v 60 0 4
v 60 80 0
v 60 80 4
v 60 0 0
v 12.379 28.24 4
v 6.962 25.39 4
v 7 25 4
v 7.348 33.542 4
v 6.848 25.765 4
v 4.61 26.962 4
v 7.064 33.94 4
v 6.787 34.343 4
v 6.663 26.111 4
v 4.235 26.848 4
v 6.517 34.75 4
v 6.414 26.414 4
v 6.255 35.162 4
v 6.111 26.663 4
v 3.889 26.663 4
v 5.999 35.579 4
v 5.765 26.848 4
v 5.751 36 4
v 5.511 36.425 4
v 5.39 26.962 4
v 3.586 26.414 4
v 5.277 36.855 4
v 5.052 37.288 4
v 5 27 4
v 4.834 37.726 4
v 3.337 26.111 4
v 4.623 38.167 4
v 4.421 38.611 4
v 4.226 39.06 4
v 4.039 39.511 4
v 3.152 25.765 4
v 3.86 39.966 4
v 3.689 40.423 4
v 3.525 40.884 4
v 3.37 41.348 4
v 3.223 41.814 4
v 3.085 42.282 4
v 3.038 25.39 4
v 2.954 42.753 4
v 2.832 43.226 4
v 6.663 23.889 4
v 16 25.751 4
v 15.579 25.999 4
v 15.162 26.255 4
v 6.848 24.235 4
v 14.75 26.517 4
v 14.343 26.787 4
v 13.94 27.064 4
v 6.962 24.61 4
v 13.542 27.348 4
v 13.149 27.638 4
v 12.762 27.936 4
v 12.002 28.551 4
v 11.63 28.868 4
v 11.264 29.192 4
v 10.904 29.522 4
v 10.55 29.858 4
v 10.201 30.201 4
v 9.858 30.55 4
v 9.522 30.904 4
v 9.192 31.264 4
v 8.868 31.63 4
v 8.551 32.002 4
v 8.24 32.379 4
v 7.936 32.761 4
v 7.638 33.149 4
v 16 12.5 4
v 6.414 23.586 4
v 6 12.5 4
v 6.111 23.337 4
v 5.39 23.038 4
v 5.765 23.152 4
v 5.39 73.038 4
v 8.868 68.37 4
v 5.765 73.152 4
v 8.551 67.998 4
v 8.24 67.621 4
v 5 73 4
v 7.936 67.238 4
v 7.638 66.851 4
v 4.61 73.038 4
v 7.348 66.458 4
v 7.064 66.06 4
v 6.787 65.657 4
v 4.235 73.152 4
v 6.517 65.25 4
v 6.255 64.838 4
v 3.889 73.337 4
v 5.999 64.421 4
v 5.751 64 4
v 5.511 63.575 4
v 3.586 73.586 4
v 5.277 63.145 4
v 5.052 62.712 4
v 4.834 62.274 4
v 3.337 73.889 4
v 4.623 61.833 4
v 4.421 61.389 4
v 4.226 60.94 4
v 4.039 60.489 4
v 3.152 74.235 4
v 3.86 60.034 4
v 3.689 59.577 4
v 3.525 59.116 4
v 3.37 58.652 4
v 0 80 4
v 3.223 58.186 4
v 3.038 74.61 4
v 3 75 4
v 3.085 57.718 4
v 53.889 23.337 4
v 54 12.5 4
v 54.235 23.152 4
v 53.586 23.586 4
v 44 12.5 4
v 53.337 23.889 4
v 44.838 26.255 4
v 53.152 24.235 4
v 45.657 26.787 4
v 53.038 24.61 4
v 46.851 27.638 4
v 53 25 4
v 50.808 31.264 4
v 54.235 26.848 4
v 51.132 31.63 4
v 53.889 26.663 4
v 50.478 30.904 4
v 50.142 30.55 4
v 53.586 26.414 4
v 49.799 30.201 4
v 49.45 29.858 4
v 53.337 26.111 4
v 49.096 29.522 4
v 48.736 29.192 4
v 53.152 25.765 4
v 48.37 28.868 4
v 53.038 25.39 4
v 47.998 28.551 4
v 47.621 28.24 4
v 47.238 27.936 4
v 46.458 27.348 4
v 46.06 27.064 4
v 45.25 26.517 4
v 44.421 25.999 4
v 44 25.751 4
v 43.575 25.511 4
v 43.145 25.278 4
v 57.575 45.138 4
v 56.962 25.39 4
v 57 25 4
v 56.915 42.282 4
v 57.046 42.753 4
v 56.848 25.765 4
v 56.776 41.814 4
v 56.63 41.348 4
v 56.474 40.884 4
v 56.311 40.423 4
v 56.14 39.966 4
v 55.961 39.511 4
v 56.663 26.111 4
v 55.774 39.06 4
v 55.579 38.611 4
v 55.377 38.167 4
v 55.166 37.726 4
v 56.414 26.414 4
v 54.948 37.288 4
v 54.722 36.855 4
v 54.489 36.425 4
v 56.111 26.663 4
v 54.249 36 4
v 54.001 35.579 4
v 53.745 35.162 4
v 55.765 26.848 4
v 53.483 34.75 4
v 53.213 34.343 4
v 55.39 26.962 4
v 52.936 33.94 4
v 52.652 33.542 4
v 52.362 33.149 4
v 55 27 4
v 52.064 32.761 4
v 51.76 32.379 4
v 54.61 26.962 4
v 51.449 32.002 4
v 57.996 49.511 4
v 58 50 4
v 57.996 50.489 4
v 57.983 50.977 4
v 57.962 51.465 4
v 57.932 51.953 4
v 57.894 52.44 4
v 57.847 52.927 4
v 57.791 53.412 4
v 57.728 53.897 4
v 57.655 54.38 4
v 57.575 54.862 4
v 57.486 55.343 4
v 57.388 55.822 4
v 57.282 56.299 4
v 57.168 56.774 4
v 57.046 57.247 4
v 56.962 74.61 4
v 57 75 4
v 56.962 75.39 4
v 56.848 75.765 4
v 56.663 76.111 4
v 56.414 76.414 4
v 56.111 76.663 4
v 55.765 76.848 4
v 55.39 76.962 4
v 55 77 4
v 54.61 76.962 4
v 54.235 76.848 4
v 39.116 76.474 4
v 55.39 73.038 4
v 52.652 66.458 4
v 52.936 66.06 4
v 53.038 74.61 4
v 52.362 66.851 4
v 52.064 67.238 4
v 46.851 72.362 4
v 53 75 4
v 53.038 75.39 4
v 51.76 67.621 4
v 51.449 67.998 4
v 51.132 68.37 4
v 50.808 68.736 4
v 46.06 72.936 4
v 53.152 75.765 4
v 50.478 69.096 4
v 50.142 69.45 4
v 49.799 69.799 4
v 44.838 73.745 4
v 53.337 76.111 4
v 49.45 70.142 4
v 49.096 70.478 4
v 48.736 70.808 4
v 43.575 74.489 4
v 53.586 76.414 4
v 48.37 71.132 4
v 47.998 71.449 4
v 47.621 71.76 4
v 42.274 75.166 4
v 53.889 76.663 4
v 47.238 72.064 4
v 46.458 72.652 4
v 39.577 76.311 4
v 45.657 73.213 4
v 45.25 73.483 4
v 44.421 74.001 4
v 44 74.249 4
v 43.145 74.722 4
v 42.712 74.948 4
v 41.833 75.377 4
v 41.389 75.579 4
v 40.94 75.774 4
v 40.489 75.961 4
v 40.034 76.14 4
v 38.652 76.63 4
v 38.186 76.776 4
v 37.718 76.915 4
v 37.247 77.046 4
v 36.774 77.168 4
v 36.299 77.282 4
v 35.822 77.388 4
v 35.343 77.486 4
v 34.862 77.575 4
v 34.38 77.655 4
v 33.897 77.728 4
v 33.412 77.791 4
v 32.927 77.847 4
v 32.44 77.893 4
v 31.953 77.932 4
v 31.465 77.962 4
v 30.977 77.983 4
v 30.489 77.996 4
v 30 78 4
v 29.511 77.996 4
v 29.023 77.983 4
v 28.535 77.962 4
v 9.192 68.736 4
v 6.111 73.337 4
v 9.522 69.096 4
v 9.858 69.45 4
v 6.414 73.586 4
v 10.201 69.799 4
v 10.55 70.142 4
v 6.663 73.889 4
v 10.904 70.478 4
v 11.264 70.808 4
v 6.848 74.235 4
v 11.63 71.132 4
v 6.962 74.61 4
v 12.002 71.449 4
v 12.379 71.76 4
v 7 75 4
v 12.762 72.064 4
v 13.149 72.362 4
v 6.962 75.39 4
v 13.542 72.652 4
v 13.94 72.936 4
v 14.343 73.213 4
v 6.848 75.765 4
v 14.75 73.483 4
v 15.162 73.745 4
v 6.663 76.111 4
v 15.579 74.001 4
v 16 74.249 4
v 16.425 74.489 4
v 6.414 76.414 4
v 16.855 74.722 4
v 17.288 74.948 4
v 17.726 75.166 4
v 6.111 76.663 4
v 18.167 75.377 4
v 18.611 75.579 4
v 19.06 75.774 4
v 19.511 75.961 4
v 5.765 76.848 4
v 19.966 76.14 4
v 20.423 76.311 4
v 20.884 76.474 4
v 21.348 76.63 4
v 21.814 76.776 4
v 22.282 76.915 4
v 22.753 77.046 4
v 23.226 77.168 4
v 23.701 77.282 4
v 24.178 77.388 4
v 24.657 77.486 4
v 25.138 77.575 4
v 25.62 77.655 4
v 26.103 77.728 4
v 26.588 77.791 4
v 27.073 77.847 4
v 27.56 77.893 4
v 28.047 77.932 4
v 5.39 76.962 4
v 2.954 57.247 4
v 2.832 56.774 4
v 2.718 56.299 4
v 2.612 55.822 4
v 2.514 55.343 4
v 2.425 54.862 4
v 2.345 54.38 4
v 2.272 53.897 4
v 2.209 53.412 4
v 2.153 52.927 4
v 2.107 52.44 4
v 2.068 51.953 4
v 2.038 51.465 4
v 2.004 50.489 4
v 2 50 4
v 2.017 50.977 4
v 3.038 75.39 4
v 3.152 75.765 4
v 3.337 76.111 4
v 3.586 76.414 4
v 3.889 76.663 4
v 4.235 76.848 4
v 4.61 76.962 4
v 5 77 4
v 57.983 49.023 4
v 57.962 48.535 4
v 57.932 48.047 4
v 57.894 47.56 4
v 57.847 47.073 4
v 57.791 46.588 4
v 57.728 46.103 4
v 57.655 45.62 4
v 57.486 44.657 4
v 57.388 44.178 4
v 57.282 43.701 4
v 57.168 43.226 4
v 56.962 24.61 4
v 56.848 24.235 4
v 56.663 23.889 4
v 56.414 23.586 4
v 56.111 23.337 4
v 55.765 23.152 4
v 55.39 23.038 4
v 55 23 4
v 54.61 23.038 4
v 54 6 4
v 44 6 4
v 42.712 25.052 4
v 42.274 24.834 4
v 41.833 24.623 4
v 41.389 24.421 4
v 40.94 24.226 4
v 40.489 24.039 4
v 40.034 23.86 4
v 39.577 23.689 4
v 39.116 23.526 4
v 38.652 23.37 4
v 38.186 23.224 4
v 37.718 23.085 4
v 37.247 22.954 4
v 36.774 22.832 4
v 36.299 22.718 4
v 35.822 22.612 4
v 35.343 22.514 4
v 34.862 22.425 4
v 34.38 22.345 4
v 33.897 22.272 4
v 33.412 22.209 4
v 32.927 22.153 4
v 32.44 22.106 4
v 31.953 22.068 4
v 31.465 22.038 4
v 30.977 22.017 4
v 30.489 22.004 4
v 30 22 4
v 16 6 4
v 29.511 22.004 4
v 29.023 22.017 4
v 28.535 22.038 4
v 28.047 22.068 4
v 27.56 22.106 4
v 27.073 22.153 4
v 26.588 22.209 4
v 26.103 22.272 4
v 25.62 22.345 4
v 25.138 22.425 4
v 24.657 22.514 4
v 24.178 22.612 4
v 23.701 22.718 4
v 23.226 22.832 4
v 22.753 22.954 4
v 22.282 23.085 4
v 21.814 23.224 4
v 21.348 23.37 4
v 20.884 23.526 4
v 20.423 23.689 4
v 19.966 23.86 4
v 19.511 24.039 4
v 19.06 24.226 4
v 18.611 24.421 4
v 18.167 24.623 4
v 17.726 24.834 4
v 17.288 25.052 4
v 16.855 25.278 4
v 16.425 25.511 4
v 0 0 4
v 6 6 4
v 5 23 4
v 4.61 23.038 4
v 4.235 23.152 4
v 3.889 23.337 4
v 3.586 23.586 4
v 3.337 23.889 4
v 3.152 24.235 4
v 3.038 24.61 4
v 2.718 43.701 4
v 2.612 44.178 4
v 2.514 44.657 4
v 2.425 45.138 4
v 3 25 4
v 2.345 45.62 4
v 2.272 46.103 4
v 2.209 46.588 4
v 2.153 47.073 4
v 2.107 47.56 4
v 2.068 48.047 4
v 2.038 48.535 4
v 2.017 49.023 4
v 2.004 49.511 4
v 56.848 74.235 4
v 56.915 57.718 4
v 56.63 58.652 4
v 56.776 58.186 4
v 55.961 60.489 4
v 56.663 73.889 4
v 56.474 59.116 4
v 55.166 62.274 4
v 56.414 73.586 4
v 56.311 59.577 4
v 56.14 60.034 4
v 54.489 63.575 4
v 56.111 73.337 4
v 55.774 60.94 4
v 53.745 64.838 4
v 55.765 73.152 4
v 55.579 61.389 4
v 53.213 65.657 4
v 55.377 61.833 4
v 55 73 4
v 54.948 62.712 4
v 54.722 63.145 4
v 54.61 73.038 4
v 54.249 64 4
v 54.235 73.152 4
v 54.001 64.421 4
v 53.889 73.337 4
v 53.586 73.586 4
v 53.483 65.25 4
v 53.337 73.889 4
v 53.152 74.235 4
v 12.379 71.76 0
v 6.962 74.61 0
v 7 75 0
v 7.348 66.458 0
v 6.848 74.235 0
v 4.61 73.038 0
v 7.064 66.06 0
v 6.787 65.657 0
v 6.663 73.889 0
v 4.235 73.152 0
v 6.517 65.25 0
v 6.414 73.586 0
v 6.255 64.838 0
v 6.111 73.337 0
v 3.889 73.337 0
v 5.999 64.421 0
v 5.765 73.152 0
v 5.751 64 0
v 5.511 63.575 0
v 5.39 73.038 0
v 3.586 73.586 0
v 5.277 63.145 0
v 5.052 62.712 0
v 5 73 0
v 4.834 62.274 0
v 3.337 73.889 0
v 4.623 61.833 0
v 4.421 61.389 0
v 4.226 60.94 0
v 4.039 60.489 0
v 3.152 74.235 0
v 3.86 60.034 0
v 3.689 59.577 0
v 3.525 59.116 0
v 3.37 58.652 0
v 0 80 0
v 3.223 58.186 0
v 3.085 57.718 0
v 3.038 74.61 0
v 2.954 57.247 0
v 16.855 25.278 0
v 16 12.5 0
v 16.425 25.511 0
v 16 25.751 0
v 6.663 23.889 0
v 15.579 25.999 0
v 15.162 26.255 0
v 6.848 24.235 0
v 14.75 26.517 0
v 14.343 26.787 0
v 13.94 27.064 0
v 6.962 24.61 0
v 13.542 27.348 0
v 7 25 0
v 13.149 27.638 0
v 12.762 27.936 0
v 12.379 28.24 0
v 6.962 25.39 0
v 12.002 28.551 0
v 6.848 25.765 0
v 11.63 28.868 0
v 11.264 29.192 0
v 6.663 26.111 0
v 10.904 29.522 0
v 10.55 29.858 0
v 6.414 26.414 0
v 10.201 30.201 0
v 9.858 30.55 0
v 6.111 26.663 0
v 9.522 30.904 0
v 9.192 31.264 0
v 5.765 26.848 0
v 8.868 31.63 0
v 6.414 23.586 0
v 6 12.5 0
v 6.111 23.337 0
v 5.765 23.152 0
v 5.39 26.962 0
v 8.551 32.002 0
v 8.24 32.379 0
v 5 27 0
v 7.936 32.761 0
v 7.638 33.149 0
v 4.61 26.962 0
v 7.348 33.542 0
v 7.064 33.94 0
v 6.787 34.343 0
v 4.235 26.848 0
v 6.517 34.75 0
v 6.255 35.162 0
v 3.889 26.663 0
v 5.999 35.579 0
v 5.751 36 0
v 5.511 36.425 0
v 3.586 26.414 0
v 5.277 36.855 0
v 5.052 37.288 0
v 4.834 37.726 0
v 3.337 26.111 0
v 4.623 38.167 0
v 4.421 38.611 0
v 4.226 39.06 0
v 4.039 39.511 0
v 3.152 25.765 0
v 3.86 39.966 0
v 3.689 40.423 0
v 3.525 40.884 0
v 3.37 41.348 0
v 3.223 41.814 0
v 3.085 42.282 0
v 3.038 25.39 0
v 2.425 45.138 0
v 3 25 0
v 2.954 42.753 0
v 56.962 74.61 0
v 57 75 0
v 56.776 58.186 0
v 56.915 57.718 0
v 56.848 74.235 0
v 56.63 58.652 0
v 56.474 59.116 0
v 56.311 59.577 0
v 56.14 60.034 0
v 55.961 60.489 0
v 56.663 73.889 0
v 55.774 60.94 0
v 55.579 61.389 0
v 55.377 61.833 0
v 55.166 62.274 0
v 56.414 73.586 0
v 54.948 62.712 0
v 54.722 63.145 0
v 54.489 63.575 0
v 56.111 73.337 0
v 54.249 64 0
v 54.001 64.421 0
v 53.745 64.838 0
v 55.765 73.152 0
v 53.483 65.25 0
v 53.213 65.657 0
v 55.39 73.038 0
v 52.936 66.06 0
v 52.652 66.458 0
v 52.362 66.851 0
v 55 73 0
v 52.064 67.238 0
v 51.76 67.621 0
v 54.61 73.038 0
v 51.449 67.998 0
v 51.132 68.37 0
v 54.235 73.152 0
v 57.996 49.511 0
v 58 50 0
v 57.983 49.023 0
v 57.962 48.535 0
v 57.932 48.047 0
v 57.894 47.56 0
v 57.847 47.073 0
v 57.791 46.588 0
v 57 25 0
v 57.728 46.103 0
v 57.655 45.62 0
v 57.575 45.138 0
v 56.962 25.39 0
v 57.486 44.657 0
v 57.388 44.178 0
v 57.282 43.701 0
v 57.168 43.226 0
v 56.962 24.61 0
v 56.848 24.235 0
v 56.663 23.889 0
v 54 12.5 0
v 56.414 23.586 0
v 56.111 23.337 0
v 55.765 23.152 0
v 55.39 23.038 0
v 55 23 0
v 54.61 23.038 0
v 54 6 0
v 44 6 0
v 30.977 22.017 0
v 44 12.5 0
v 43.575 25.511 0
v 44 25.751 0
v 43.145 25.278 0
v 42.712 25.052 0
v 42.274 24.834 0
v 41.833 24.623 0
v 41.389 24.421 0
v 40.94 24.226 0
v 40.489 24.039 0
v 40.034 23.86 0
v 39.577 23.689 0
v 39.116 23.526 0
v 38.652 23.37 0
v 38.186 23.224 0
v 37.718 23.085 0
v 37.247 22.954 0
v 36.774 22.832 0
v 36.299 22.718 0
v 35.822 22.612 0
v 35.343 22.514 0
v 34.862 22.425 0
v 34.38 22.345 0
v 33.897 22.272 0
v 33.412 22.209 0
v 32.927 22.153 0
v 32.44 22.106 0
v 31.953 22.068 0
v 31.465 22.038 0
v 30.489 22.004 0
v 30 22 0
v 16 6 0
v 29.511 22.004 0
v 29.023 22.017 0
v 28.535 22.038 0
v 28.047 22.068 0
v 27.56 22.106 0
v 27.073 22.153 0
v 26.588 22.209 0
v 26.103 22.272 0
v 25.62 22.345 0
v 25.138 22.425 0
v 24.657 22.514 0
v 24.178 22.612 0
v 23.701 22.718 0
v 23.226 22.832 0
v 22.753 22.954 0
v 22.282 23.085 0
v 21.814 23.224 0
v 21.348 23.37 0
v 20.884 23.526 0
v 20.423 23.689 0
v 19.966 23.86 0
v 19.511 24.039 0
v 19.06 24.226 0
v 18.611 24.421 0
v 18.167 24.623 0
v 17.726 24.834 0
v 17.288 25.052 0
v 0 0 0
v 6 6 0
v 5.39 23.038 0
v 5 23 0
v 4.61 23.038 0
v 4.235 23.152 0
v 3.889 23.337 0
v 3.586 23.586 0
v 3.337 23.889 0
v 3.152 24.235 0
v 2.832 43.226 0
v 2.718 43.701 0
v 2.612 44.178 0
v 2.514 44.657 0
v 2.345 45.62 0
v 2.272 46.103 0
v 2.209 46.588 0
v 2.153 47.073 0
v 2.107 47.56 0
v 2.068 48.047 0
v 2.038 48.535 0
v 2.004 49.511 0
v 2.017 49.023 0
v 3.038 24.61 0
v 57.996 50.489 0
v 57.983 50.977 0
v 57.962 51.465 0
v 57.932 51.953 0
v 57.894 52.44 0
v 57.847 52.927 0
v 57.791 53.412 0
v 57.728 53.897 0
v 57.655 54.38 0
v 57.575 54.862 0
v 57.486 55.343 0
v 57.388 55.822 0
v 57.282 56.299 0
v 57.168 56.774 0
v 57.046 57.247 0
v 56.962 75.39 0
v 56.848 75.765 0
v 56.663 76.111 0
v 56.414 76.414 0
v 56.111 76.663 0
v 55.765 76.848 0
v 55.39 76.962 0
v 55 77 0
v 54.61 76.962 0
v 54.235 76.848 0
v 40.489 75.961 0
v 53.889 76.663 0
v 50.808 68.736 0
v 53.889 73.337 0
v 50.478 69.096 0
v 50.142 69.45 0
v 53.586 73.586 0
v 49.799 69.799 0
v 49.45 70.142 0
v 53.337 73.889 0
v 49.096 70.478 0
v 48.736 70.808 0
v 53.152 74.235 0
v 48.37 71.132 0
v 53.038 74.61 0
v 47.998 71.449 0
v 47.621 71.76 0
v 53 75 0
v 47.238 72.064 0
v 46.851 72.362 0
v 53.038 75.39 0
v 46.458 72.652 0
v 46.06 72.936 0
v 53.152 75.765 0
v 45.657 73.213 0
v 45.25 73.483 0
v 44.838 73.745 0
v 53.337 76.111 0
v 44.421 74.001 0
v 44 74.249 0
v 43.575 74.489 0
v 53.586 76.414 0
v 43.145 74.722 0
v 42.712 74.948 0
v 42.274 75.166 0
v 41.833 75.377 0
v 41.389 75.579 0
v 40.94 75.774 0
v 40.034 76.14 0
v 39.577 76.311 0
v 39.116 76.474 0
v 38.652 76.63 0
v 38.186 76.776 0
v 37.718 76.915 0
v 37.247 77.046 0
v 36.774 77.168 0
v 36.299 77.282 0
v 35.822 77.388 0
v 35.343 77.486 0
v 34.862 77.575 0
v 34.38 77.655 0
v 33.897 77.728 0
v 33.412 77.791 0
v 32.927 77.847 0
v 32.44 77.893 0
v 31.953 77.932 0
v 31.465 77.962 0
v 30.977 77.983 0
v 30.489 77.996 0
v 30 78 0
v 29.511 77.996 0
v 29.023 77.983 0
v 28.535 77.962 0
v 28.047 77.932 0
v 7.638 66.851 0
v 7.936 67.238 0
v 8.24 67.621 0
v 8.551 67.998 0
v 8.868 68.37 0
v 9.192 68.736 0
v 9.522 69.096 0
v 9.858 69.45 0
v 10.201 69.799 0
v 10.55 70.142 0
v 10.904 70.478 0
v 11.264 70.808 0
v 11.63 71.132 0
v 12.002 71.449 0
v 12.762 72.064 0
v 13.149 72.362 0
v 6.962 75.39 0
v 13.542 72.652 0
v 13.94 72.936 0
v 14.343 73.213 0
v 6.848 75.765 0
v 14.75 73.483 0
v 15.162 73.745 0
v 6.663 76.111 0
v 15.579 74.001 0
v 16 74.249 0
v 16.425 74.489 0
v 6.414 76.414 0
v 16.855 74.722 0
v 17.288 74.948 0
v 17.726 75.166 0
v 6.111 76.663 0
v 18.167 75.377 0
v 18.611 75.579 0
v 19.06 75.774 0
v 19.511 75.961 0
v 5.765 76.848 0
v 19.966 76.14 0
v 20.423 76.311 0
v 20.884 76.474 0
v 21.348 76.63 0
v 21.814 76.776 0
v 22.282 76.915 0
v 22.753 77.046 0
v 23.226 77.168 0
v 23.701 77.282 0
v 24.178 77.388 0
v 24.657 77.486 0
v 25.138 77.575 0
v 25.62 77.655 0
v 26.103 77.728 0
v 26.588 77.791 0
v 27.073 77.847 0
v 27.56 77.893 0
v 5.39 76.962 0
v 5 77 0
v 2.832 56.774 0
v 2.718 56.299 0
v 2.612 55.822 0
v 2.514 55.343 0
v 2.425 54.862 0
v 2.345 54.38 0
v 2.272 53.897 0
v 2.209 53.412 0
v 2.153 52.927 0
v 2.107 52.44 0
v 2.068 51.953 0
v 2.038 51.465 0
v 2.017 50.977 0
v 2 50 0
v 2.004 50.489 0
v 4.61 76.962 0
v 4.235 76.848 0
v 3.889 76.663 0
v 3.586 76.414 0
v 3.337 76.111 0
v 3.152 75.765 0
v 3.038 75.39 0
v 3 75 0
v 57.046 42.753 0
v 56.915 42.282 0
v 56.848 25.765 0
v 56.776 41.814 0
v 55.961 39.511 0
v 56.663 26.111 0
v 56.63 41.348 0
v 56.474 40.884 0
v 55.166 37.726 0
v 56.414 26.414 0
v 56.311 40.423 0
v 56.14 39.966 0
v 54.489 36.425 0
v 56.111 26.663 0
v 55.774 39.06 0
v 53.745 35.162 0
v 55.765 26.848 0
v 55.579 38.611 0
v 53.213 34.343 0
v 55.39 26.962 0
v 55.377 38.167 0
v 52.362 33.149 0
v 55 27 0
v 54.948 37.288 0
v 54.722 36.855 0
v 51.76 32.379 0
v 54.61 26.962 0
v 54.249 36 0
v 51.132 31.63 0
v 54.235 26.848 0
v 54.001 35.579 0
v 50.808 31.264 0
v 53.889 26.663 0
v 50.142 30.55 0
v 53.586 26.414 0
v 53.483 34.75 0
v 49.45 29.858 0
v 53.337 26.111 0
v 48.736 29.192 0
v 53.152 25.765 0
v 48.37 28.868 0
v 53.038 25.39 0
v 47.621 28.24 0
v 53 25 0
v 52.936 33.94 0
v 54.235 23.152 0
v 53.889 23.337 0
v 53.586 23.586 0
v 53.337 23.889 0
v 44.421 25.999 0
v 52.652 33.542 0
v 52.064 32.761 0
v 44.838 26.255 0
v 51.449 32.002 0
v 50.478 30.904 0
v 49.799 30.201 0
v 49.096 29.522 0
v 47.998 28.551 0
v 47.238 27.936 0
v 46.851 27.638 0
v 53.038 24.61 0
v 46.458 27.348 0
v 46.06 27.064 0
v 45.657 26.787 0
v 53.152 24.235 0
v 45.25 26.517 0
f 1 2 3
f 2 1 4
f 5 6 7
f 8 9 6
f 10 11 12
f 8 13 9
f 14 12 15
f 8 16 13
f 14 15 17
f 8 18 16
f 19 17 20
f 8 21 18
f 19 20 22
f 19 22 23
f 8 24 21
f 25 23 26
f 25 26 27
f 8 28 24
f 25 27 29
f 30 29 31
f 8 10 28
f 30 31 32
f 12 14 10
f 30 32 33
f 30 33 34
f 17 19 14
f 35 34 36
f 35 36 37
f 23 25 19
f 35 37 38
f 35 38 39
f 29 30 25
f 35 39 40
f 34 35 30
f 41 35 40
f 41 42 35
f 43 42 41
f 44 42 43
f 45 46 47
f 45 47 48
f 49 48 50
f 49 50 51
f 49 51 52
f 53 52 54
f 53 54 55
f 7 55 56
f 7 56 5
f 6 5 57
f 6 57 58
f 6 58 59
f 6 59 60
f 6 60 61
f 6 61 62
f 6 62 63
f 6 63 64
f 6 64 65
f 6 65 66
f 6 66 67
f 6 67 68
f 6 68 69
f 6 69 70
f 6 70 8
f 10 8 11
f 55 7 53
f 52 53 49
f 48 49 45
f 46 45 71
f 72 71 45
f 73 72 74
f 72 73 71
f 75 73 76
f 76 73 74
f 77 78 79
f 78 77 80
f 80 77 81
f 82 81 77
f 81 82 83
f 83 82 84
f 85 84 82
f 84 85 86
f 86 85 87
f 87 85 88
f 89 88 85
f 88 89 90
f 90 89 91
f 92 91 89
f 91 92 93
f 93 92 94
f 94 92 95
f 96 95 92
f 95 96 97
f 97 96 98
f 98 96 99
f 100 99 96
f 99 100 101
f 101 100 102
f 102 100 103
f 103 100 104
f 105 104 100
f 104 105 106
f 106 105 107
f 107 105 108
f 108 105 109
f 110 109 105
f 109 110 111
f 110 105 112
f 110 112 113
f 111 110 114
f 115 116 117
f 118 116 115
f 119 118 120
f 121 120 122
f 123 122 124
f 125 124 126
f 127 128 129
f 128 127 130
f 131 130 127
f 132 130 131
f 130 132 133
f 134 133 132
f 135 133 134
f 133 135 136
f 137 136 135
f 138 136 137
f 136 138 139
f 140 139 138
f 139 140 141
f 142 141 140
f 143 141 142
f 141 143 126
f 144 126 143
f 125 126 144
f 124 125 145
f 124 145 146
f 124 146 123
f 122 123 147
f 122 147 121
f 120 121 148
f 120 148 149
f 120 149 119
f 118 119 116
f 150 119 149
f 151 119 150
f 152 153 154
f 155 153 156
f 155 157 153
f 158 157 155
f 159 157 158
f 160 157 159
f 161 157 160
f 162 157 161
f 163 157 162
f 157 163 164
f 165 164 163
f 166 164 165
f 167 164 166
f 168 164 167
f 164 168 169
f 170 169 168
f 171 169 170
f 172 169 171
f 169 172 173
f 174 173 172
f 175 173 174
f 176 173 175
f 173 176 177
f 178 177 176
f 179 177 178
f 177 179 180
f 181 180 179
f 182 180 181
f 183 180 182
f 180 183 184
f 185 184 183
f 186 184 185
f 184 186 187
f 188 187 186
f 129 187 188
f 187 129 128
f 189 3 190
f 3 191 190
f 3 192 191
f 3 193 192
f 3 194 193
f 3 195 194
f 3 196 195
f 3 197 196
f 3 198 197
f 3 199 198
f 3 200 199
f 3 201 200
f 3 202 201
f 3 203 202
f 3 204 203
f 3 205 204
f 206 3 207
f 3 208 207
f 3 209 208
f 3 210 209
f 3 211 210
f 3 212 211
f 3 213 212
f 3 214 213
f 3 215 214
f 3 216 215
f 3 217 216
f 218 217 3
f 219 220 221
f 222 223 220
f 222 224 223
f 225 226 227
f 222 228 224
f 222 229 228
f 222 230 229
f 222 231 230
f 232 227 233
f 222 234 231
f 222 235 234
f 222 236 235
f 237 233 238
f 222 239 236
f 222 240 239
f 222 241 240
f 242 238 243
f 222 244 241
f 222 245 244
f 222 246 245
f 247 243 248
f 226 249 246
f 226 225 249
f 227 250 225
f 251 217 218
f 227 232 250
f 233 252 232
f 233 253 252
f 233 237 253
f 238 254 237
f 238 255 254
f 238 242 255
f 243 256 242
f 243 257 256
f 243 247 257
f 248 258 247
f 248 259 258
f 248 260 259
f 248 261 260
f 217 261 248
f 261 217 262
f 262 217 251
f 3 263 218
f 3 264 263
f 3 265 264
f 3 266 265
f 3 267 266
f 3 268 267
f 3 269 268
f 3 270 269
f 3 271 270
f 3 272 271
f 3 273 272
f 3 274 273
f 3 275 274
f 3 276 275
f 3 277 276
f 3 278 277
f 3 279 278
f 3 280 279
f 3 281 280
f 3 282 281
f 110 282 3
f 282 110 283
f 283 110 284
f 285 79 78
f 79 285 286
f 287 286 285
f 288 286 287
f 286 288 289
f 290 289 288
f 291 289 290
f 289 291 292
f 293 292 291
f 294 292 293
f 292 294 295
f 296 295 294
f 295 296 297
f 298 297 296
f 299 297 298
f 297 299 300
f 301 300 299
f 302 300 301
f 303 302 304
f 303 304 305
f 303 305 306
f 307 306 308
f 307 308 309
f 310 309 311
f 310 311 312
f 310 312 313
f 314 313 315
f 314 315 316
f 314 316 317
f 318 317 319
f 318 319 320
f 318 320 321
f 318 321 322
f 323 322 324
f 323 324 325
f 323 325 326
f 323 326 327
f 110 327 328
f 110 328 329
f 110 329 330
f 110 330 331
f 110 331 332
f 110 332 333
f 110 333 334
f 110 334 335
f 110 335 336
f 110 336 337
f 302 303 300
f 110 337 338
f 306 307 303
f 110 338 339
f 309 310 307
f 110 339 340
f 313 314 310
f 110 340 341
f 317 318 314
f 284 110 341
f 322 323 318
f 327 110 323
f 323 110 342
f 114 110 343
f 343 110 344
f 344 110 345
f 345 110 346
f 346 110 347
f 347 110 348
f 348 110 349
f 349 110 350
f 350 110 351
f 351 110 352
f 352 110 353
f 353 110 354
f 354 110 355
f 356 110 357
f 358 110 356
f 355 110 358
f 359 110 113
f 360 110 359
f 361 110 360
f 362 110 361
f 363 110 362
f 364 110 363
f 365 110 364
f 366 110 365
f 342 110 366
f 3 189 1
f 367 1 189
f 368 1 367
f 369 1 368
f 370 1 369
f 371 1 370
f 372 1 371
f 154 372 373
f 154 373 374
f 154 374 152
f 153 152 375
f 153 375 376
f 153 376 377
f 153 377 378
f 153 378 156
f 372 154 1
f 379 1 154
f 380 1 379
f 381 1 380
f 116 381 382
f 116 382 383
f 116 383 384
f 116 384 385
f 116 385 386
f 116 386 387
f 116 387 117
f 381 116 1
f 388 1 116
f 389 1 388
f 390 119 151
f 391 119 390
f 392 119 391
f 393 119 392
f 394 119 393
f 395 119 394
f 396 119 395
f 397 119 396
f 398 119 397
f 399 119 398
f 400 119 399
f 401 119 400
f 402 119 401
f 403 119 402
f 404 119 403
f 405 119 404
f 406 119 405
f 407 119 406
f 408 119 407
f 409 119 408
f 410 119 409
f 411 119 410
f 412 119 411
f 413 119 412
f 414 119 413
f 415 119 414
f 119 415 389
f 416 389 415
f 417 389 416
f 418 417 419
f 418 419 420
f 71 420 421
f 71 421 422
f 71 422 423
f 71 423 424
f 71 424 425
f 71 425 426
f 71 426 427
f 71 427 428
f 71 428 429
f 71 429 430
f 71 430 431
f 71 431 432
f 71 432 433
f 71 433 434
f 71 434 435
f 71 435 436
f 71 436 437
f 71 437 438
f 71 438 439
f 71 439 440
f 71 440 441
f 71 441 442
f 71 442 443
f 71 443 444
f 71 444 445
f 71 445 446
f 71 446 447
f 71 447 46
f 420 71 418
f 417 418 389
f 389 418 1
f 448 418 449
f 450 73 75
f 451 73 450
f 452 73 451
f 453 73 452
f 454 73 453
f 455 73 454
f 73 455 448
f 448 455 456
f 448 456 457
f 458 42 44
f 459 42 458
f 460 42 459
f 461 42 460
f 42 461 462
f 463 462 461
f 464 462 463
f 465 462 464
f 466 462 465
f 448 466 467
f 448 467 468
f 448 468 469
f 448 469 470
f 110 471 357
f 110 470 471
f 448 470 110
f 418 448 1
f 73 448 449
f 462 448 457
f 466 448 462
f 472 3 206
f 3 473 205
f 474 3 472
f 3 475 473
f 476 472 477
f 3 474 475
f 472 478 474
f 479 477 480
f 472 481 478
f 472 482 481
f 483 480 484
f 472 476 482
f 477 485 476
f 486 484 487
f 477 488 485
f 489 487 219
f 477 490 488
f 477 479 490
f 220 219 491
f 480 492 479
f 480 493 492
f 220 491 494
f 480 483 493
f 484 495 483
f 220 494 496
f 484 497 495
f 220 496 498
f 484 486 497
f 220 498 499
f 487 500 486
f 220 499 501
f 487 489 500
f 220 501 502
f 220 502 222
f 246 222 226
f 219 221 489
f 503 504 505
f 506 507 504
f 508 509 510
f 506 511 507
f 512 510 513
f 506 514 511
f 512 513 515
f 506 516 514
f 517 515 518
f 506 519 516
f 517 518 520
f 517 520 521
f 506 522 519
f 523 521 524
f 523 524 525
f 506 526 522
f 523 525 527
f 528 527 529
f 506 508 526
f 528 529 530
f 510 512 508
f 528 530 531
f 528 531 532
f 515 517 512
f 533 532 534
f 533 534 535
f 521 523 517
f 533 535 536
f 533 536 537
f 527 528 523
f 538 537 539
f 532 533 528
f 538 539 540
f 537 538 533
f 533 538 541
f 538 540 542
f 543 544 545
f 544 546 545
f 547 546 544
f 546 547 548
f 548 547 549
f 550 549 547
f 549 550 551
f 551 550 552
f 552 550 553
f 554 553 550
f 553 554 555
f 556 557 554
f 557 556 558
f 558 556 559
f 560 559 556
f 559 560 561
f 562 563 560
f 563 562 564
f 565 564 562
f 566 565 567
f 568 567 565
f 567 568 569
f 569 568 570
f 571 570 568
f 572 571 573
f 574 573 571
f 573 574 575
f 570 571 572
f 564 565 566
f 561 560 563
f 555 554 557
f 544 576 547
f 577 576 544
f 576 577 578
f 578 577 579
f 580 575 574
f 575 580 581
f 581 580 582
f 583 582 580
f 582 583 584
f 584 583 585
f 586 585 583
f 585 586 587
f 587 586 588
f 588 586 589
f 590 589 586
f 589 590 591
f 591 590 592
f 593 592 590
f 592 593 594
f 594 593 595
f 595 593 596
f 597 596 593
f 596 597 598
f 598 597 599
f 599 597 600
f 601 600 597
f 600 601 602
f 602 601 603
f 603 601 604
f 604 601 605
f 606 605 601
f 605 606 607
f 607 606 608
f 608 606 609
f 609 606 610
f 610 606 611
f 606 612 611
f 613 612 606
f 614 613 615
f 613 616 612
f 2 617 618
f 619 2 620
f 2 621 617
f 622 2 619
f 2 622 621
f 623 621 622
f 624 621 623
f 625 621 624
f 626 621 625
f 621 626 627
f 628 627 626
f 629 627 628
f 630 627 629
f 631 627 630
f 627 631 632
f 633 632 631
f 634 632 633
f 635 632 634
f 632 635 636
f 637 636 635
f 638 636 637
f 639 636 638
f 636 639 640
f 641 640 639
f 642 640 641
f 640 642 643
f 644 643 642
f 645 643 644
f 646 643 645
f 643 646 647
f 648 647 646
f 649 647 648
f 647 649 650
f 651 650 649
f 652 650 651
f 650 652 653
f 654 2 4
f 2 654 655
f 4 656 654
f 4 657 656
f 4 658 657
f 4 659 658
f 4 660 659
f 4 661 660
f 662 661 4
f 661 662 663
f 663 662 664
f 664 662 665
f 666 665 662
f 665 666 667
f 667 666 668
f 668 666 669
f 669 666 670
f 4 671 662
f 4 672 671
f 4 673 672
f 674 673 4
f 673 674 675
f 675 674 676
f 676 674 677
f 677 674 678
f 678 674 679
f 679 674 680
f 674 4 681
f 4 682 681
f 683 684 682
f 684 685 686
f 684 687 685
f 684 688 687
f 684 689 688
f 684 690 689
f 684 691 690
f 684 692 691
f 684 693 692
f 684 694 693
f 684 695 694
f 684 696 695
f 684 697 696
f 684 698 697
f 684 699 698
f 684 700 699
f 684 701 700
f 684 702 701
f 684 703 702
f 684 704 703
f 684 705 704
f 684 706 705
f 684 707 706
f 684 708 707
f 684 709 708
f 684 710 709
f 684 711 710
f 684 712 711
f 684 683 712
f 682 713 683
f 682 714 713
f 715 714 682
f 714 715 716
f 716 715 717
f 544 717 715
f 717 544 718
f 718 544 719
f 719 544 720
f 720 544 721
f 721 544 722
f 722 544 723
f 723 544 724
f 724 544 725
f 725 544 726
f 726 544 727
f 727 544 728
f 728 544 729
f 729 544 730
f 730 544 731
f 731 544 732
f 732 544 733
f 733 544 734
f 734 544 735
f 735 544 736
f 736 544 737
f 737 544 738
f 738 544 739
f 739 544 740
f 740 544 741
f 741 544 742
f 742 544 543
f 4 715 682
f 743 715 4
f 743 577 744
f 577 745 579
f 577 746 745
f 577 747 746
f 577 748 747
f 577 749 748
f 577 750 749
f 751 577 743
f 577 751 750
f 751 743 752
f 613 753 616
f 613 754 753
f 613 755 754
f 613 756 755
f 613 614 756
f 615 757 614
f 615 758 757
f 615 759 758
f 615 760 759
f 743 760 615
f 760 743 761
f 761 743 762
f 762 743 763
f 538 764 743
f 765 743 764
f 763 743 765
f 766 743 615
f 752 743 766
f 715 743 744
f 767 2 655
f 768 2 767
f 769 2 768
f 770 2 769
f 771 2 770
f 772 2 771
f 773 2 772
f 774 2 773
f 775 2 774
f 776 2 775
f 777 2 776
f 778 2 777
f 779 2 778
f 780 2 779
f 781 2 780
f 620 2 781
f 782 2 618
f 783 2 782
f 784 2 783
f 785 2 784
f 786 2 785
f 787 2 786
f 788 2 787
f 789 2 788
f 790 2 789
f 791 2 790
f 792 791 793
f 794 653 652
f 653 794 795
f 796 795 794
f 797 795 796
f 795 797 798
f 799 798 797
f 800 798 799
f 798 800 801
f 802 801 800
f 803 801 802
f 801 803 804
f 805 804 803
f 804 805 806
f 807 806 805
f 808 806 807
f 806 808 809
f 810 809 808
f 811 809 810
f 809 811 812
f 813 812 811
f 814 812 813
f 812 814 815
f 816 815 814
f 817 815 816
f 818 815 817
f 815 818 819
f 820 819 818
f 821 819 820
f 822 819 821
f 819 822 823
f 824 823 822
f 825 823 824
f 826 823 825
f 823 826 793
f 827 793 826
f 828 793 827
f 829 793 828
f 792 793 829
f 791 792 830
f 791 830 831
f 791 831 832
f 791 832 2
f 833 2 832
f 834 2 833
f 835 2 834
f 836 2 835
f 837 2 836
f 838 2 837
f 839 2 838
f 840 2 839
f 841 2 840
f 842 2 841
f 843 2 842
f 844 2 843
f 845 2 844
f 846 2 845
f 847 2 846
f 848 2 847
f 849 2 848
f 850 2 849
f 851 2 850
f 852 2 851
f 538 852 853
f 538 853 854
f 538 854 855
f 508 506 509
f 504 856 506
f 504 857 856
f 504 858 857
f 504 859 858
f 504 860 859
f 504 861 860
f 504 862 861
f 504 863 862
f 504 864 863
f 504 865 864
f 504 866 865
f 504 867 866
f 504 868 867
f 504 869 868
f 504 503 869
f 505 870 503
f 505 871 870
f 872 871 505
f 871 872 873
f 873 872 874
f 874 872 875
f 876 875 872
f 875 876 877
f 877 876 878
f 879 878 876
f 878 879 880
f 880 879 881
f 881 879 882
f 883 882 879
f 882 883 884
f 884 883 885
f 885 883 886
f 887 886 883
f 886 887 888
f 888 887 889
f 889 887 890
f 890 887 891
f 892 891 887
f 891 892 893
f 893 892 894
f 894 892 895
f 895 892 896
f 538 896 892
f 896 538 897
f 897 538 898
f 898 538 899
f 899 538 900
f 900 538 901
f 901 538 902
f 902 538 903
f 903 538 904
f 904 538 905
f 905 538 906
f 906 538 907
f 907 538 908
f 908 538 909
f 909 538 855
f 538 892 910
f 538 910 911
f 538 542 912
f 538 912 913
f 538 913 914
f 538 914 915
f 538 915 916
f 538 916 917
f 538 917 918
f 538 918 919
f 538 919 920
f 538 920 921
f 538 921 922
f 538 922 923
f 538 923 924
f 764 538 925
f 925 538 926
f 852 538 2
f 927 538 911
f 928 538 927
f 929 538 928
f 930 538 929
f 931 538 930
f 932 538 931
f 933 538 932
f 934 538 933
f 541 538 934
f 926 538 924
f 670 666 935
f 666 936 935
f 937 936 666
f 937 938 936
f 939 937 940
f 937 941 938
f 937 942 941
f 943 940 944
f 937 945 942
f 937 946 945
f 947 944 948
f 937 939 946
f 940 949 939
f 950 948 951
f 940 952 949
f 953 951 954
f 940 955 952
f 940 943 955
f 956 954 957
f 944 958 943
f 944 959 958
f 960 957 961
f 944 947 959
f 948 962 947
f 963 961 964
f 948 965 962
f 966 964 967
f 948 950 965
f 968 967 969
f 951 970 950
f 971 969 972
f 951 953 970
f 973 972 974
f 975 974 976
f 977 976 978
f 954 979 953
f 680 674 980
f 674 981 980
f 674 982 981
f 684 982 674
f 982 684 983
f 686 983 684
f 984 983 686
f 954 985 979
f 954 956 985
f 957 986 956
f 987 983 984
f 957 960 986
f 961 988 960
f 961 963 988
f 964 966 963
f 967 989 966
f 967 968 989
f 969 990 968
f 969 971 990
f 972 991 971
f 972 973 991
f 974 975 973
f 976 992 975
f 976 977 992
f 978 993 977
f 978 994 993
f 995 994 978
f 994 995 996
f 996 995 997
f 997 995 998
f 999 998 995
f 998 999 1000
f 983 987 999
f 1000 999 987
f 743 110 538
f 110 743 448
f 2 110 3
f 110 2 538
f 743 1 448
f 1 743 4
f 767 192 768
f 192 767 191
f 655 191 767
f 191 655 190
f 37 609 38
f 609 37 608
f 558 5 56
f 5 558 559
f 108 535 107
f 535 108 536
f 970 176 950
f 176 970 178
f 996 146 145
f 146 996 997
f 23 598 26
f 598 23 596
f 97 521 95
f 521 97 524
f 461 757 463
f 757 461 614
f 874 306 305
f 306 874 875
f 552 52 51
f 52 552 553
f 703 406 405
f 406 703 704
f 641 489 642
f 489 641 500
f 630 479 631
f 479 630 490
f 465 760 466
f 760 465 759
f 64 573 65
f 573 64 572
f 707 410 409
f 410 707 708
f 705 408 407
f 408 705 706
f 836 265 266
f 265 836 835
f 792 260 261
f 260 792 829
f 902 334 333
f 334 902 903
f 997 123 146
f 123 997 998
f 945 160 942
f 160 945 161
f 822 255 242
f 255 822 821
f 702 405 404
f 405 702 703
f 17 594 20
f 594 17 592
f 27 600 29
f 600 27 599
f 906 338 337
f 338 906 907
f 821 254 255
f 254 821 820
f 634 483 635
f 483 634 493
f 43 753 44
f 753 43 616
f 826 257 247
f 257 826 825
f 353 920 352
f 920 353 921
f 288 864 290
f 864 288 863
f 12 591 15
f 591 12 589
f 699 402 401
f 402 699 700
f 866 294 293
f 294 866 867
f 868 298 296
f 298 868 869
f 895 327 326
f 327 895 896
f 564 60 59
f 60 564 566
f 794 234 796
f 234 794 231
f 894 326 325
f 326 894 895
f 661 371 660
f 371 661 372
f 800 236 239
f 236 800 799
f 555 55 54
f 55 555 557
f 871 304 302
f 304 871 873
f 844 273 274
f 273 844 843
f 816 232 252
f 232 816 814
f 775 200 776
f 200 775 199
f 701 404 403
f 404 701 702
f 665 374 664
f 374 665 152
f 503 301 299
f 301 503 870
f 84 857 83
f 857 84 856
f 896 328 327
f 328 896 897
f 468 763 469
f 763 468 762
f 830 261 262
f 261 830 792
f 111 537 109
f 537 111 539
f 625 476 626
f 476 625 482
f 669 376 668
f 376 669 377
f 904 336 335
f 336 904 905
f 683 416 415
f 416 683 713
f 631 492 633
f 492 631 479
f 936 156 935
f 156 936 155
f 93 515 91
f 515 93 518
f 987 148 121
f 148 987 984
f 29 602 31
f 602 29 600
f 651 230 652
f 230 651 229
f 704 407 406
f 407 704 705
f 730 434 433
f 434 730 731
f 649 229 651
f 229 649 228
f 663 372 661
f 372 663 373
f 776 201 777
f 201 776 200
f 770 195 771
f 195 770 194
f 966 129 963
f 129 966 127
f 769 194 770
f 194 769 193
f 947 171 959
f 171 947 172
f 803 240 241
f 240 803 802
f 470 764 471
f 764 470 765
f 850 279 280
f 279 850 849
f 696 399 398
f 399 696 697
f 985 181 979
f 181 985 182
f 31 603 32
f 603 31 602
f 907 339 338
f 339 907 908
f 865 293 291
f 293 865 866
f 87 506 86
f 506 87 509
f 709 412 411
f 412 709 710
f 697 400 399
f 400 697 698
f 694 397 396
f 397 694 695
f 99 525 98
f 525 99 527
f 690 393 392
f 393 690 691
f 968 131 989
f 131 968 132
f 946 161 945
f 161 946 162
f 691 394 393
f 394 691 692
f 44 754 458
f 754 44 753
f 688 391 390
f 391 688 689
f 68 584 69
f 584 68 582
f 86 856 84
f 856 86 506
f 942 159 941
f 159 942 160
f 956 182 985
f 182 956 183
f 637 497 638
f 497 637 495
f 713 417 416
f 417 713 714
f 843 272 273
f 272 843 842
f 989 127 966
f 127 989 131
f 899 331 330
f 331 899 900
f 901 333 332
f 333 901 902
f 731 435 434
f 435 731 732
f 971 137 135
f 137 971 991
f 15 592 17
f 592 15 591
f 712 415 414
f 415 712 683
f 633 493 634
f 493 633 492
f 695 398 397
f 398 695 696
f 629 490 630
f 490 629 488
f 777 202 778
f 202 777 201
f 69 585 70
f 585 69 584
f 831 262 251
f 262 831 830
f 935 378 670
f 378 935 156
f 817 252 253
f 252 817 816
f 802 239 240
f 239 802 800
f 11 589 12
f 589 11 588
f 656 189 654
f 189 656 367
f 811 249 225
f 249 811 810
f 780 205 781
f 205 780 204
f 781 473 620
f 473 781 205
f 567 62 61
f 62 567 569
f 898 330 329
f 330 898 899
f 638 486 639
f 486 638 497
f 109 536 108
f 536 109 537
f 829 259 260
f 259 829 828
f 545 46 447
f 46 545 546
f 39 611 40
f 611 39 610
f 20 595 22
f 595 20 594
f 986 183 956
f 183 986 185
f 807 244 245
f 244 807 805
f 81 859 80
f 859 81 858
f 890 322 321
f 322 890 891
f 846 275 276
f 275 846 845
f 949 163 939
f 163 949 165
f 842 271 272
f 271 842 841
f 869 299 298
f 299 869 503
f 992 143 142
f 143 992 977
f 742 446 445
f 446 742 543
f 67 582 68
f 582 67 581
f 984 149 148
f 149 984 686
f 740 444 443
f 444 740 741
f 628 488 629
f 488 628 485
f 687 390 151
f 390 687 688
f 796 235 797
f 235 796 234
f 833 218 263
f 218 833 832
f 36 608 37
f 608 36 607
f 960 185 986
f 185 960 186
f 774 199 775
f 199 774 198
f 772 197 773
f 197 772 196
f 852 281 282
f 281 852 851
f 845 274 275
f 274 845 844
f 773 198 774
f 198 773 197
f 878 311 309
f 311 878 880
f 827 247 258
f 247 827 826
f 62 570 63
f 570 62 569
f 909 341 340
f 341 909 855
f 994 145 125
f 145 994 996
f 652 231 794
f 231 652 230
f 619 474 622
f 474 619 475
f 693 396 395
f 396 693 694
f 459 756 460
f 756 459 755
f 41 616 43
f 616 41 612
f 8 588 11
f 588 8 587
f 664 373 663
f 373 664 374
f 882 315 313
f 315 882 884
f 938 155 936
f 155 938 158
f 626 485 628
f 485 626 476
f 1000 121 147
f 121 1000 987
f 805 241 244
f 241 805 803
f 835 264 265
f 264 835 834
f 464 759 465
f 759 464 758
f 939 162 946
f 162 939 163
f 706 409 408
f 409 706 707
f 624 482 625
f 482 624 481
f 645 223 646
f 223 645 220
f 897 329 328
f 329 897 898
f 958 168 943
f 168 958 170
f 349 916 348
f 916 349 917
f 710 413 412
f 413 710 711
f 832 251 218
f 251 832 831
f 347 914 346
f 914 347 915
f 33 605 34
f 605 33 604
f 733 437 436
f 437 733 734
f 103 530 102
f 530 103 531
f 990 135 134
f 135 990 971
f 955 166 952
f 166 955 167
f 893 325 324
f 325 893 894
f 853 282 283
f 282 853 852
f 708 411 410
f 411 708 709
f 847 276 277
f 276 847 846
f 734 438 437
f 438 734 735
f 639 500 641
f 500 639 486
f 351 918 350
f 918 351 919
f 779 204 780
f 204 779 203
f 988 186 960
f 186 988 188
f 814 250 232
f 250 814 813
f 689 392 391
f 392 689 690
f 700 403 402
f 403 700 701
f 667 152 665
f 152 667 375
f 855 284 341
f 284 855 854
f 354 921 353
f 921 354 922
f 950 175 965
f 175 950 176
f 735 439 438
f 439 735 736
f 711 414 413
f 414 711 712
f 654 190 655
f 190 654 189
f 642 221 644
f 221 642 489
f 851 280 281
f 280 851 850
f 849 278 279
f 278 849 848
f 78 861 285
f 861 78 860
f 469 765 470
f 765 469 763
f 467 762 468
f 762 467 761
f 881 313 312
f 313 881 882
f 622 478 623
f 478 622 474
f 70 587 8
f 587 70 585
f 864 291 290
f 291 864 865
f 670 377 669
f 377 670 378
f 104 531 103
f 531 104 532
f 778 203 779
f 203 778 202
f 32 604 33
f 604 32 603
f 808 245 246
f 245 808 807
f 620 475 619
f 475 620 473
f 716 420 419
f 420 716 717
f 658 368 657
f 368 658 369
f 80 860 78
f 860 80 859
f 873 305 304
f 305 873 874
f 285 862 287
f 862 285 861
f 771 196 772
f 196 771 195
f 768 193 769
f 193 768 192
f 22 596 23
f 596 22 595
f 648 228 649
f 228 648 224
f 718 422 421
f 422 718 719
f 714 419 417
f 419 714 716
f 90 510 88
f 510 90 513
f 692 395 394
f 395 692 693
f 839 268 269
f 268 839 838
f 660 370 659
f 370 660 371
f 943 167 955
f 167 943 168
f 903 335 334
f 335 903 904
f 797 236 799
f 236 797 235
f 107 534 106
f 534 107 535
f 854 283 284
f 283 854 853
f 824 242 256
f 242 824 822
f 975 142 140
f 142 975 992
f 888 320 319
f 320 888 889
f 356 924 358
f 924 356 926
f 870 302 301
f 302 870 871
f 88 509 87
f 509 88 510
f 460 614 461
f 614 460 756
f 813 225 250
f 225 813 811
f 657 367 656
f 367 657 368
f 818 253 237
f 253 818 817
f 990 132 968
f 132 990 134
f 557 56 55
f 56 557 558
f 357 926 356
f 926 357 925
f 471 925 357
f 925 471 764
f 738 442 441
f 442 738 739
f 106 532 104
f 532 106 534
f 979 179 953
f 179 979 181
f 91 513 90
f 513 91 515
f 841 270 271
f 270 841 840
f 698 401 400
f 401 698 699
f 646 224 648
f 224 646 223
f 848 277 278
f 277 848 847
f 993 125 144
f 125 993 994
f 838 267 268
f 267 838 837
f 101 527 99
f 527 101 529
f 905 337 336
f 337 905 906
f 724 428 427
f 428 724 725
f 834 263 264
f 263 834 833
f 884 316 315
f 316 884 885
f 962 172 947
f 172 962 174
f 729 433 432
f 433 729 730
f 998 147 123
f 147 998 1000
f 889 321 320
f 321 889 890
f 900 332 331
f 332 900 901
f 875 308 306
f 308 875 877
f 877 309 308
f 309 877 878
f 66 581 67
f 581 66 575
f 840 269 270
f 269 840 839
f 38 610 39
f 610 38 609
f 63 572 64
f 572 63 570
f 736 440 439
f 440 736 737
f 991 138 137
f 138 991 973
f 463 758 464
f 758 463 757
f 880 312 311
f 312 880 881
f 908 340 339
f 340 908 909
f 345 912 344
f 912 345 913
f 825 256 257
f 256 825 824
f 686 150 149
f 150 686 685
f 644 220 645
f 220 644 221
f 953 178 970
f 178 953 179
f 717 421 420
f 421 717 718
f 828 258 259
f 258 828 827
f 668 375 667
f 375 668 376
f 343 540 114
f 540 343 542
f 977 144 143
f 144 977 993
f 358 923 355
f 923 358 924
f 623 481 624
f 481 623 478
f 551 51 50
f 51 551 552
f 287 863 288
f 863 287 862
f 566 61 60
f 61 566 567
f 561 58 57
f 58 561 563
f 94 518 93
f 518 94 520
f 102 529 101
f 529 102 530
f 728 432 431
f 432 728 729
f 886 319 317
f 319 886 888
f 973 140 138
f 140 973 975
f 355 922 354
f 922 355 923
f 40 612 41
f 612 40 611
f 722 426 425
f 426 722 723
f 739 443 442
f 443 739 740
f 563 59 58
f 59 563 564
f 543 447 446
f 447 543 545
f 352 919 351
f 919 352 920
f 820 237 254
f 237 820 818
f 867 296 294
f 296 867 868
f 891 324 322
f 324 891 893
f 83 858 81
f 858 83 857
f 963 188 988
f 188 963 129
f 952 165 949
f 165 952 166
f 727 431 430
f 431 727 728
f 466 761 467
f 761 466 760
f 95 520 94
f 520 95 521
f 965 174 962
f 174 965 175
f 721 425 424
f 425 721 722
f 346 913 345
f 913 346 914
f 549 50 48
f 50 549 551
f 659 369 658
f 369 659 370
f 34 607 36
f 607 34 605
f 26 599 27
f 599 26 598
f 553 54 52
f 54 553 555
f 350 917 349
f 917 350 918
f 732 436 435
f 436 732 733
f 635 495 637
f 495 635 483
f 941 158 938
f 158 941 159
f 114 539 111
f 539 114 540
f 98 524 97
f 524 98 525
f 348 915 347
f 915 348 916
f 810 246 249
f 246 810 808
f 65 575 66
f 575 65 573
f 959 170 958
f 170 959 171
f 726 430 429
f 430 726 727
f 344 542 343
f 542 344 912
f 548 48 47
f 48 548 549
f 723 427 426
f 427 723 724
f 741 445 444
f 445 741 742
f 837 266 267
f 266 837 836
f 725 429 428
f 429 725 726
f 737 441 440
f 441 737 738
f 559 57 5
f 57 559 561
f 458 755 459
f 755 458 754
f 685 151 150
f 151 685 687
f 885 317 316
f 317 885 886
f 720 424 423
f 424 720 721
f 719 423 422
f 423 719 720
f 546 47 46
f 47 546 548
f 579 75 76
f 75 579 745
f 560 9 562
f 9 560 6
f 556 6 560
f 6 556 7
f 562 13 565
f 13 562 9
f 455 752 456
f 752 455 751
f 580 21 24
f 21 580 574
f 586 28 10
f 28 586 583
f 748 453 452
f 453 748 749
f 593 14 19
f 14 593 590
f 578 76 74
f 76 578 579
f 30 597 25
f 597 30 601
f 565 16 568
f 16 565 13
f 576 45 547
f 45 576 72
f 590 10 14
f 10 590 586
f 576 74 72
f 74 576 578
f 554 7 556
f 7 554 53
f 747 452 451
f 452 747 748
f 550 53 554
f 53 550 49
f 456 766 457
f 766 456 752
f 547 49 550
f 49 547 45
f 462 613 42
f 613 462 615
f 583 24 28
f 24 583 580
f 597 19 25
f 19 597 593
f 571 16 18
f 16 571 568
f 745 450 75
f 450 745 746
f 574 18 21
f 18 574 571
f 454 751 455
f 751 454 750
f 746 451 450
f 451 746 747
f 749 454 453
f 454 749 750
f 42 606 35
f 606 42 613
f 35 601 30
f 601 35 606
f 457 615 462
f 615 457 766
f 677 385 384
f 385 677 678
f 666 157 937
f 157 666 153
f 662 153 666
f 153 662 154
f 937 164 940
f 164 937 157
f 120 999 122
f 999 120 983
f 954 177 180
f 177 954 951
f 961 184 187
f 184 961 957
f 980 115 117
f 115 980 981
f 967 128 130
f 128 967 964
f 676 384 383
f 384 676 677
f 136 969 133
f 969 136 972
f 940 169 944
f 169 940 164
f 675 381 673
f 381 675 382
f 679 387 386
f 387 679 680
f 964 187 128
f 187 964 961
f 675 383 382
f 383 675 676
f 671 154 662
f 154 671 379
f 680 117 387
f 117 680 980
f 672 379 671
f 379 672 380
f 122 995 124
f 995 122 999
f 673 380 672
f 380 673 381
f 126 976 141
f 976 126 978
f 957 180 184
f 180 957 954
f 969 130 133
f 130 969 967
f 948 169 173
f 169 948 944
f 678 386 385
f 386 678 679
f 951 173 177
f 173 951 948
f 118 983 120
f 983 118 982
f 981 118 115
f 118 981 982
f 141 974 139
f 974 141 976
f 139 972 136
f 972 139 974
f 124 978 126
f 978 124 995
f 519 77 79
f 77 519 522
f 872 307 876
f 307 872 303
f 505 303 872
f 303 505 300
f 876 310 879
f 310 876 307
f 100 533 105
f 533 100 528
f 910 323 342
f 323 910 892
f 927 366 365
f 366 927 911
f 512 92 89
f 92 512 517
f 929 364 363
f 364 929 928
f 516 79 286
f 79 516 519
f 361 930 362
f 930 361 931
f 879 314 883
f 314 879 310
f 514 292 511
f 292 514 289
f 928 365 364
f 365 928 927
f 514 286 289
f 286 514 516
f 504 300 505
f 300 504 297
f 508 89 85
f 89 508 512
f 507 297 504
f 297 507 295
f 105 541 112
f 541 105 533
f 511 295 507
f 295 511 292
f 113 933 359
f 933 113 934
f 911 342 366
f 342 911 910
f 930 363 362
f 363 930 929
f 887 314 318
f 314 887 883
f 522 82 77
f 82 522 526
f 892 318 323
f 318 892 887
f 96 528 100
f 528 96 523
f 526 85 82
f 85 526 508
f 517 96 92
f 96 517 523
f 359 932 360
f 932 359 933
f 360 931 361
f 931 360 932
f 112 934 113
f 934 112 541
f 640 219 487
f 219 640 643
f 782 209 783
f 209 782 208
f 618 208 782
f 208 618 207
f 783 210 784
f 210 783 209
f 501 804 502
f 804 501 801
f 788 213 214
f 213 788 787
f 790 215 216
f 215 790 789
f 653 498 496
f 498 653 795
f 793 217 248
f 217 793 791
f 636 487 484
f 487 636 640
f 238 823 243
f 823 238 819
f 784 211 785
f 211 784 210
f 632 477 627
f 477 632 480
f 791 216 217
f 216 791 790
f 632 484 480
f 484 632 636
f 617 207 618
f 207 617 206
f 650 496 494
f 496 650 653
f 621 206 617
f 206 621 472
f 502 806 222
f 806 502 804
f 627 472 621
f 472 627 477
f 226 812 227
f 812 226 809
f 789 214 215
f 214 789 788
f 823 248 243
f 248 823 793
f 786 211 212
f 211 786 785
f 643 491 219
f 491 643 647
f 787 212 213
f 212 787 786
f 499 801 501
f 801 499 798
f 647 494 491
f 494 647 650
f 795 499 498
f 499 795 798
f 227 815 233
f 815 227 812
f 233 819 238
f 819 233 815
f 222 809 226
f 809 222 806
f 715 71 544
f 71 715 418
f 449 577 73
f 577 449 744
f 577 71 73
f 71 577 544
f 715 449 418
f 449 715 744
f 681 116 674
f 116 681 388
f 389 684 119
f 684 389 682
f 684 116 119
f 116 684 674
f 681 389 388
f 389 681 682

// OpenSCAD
$fa = 1;
$fs = 0.4;

difference() {
    cube([60, 80, 4]);
    
    translate([30, 50, -0.5])
        cylinder(r=28, h=6);
    
    translate([5, 25, -0.5])
        cylinder(r=2, h=6);
    translate([55, 25, -0.5])
        cylinder(r=2, h=6);
    translate([5, 75, -0.5])
        cylinder(r=2, h=6);
    translate([55, 75, -0.5])
        cylinder(r=2, h=6);
    
    translate([6, 6, -0.5])
        cube([10, 6.5, 6]);
    translate([50-6, 6, -0.5])
        cube([10, 6.5, 6]);
}
